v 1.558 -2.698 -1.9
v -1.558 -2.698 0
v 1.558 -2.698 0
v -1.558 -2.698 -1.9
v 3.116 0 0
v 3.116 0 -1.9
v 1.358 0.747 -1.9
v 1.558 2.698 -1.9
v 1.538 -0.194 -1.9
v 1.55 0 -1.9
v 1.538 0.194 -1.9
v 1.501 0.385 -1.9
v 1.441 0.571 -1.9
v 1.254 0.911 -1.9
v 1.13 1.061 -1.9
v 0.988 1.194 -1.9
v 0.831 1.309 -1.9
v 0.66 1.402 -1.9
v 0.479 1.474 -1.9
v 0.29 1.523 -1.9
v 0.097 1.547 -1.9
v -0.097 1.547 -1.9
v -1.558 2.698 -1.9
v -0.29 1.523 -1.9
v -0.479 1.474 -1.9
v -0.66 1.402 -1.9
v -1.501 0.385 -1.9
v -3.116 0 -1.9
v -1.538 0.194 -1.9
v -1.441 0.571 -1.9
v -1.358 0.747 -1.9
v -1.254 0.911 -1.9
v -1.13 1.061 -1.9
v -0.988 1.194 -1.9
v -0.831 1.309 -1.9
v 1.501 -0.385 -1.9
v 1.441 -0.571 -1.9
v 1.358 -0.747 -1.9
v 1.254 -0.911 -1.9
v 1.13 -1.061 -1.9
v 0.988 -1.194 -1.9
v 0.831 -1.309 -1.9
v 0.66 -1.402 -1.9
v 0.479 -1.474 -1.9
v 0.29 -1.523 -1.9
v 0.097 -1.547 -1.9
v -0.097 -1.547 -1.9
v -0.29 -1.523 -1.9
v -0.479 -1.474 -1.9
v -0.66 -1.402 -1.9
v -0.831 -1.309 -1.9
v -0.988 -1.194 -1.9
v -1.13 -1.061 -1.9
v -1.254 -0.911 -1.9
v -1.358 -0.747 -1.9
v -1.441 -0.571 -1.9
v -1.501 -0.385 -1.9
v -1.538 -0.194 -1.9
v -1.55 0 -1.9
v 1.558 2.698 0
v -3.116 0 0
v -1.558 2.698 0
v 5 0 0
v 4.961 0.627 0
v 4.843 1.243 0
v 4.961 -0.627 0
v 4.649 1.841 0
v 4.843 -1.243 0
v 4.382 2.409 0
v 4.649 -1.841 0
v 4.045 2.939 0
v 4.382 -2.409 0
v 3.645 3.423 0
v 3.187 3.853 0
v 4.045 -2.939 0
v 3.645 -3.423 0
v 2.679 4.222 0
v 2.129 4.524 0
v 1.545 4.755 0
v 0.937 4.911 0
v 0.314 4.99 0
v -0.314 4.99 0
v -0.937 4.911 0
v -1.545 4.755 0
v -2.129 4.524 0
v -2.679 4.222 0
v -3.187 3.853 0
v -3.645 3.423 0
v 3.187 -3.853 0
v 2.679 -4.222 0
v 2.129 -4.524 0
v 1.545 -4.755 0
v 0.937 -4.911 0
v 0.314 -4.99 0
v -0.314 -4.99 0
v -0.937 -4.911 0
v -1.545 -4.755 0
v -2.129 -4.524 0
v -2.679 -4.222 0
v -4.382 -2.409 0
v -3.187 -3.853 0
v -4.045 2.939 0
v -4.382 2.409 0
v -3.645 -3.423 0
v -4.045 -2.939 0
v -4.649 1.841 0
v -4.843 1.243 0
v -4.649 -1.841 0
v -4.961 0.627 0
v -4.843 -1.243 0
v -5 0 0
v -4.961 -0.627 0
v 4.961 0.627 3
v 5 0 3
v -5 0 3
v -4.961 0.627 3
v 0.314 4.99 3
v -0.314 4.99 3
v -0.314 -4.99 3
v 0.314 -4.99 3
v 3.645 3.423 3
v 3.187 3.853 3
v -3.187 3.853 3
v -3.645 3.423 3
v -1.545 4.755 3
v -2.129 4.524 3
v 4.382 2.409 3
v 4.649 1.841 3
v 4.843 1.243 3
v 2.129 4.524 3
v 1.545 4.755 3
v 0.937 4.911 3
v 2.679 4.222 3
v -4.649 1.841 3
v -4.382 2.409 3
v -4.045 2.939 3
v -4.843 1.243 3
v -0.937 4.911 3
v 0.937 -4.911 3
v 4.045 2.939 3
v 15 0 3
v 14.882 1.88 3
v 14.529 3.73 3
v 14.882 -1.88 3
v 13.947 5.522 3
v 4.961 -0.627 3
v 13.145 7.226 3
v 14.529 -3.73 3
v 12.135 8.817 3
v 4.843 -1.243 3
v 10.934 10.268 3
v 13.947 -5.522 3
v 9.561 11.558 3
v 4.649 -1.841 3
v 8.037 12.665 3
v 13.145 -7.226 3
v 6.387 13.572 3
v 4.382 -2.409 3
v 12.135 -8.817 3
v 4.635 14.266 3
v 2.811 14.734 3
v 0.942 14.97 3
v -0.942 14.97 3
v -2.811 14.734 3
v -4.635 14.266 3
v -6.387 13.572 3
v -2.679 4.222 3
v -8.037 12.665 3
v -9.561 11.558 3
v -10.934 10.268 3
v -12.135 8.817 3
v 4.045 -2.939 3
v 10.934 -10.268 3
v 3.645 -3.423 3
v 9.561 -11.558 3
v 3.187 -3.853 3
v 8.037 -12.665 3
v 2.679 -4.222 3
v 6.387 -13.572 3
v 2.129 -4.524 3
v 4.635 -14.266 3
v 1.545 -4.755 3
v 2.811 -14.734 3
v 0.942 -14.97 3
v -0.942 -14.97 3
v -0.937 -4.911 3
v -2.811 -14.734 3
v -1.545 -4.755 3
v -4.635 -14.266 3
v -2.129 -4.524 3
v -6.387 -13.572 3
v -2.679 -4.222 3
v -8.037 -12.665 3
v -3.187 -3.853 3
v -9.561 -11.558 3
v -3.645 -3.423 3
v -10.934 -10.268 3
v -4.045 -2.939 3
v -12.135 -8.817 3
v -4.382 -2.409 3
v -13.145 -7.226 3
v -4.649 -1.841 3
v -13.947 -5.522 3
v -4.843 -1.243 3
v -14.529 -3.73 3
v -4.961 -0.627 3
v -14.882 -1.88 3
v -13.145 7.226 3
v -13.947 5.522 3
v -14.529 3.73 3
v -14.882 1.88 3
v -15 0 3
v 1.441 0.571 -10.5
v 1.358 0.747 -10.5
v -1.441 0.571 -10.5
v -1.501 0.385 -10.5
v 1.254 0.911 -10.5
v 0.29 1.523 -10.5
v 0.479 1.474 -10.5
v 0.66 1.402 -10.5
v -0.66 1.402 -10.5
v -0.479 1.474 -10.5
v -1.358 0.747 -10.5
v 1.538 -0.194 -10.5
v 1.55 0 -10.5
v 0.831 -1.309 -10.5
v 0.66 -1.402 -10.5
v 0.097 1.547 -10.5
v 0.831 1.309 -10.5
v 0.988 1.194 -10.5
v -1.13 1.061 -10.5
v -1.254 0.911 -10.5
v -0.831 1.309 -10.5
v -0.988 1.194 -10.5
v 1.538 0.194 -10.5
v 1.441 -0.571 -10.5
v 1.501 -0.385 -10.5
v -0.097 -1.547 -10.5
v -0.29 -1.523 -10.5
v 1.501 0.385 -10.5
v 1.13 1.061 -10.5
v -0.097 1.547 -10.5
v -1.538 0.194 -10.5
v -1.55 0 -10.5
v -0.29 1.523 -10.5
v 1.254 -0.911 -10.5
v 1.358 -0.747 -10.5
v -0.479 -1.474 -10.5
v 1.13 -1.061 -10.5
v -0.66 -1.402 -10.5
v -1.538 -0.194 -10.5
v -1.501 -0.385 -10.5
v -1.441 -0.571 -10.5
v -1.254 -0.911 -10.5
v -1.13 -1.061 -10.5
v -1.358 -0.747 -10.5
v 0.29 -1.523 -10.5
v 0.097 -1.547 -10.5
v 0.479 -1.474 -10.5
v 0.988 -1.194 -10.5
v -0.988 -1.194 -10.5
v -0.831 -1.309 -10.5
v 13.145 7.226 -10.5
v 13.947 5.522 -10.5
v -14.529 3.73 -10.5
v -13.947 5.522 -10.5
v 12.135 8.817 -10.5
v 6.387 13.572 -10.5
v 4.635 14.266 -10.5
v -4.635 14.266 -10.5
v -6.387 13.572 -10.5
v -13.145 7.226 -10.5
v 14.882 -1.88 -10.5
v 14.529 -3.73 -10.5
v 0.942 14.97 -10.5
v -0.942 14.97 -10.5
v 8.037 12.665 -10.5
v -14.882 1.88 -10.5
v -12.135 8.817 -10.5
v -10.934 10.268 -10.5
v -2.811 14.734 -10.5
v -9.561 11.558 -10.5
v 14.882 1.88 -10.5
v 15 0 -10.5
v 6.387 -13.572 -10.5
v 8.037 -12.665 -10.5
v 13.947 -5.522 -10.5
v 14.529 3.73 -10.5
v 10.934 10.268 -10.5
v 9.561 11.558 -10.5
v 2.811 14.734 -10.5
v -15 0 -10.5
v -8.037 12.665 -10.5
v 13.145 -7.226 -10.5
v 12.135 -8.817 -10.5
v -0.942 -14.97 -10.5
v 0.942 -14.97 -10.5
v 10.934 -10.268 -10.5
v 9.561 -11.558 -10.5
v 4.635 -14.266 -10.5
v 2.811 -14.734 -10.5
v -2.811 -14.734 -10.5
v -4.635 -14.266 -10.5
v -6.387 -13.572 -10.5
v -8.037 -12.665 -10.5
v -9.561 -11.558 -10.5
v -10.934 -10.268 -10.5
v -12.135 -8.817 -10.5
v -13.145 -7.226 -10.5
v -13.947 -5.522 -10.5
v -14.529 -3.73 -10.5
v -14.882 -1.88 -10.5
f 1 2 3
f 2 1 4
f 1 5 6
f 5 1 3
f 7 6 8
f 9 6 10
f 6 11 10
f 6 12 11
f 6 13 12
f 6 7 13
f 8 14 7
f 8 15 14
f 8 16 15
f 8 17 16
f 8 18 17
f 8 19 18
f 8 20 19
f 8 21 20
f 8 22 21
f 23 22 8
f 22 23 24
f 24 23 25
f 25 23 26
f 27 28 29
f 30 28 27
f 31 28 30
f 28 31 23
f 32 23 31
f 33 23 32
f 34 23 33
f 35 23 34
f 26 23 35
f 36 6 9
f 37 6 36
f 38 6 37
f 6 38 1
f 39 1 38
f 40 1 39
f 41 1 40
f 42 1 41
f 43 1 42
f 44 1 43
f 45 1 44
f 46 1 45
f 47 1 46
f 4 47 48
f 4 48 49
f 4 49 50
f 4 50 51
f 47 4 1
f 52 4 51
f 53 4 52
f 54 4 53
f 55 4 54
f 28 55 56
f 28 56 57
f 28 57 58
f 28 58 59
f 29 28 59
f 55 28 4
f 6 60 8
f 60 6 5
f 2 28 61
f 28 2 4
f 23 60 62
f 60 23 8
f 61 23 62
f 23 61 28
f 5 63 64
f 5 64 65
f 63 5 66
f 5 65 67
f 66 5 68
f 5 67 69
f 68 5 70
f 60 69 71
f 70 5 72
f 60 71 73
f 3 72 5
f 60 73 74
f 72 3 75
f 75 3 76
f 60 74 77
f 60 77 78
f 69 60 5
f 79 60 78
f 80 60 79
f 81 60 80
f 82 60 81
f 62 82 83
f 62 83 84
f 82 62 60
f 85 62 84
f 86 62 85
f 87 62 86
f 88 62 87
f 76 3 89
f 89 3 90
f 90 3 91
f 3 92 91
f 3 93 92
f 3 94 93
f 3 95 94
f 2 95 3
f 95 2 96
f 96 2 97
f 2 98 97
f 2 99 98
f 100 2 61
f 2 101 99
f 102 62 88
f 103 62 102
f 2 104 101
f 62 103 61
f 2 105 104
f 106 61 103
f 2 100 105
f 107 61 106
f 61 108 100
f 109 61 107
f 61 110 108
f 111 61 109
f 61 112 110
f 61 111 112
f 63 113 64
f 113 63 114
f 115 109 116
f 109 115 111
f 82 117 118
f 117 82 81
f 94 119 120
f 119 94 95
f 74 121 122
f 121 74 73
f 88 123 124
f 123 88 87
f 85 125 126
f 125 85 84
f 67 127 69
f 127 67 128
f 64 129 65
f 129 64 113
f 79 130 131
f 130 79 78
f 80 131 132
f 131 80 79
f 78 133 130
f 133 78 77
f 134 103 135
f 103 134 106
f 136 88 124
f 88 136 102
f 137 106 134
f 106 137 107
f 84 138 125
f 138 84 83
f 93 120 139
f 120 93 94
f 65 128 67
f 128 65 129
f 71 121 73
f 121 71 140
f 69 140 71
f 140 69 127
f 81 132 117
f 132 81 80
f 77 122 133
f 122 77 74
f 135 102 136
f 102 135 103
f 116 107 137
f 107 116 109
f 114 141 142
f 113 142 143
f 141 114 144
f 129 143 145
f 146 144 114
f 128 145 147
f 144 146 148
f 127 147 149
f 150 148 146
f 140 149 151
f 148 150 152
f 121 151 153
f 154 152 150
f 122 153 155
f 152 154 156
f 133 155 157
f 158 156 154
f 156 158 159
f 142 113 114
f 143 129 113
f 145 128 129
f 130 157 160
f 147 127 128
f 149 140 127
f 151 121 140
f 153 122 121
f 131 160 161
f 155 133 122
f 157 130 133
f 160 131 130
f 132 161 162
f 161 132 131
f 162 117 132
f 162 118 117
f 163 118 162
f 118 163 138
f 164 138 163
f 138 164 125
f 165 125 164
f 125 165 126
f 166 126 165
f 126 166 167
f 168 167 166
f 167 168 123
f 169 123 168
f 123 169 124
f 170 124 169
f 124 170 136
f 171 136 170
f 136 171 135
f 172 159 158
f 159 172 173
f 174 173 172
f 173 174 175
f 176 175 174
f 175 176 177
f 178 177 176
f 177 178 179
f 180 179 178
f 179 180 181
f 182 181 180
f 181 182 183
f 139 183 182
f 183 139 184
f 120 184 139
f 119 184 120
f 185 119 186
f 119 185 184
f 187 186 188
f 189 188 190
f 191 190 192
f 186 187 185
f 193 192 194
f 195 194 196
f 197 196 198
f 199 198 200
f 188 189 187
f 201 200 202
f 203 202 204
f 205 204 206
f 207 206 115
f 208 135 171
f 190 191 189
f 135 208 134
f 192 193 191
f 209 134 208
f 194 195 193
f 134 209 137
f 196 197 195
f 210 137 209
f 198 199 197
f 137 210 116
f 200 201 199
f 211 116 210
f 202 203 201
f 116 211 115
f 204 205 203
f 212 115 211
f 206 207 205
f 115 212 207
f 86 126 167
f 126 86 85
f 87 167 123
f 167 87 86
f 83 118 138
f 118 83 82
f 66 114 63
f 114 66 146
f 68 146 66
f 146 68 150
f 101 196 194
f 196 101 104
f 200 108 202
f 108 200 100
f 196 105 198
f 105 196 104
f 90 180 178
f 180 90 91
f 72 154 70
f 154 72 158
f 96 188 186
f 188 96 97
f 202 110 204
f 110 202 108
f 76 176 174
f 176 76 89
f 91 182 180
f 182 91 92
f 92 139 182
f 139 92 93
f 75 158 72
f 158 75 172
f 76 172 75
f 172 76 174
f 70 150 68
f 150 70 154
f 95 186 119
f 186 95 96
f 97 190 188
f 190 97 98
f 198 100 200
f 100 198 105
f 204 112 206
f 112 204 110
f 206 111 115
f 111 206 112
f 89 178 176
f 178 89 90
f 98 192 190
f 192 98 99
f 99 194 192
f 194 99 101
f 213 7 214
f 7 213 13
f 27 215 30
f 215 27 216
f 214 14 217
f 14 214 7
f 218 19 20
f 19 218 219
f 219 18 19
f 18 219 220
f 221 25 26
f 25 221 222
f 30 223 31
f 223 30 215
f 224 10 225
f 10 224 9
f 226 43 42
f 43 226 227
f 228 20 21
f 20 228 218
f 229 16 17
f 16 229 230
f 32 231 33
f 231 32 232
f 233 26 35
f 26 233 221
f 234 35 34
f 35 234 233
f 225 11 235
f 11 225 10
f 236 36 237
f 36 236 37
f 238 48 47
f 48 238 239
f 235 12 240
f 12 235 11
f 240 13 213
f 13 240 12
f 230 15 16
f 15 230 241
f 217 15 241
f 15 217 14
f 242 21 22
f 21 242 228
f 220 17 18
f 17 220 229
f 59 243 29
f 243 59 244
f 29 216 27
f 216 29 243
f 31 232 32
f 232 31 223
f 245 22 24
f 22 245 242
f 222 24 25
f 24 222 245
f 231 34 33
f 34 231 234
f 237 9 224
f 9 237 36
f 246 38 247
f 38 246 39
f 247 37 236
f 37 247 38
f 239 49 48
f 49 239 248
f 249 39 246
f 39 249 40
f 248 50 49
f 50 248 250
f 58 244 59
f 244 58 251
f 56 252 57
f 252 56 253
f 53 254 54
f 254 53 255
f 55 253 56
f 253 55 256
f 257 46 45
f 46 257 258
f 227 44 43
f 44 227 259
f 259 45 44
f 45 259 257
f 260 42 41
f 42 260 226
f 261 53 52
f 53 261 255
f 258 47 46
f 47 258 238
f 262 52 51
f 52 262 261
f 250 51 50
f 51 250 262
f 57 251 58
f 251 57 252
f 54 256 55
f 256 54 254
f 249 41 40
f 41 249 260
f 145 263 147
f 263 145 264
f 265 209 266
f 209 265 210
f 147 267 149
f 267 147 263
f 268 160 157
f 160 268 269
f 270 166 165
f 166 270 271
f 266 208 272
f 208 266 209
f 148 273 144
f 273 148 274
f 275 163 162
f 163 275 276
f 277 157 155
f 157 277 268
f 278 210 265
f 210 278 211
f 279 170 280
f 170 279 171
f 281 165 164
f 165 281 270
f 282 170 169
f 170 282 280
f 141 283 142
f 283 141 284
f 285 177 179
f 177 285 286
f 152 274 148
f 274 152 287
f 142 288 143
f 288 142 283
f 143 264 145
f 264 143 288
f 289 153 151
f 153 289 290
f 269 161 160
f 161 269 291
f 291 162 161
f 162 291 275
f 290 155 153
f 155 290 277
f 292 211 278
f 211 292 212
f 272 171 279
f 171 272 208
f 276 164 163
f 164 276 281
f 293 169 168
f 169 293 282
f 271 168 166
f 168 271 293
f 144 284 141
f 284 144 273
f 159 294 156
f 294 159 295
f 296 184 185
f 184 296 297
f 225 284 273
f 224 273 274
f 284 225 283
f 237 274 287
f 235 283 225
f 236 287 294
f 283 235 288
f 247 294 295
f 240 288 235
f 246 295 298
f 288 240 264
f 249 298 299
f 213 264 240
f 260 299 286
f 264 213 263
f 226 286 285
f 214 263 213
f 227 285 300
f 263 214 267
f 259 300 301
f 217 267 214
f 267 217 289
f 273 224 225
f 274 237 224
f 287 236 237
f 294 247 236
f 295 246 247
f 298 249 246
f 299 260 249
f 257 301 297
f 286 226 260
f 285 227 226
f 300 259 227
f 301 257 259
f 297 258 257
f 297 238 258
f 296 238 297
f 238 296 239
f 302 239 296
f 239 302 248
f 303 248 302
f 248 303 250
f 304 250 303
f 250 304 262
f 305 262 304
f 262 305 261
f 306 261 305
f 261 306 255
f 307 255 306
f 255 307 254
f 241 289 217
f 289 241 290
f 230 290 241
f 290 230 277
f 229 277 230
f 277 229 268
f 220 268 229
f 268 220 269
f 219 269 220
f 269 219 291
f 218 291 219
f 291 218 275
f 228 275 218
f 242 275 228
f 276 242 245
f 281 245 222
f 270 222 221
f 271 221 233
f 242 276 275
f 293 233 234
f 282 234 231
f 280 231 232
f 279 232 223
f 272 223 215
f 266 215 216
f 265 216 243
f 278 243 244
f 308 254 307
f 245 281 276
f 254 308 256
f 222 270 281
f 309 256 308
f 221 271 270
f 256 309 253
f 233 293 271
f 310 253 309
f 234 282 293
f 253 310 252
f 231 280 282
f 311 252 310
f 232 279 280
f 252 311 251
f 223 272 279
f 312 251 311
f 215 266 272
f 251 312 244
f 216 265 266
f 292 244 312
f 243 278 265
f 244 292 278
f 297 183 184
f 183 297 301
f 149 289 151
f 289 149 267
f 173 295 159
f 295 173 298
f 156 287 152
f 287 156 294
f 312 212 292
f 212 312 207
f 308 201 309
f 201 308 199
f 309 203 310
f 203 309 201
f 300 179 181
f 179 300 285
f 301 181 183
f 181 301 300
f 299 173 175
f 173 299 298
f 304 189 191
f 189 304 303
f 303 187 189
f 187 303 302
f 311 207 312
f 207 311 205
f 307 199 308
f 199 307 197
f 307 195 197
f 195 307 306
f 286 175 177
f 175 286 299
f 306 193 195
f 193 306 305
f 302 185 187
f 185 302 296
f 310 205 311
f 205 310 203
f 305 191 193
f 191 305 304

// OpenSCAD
$fn = 50;

difference() {
	union() {
		translate(v = [0, 0, -10.5]) {
			cylinder(h = 13.5, r = 15.0);
		}
	}
	union() {
		translate(v = [0, 0, 0]) {
			rotate(a = [0, 0, 0]) {
				difference() {
					union() {
						translate(v = [0, 0, -1.9]) {
							linear_extrude(height = 1.9) {
								polygon(points = [[3.1158, 0.0], [1.5579000000000005, 2.698361953111554], [-1.5578999999999994, 2.6983619531115544], [-3.1158, 3.815754496783323e-16], [-1.5579000000000014, -2.6983619531115535], [1.557899999999998, -2.6983619531115552]]);
							}
						}
					}
					union();
				}
			}
		}
		#cylinder(h = 3, r = 5.0);
		#translate(v = [0, 0, -100.0]) {
			cylinder(h = 200, r = 1.55);
		}
	}
}
